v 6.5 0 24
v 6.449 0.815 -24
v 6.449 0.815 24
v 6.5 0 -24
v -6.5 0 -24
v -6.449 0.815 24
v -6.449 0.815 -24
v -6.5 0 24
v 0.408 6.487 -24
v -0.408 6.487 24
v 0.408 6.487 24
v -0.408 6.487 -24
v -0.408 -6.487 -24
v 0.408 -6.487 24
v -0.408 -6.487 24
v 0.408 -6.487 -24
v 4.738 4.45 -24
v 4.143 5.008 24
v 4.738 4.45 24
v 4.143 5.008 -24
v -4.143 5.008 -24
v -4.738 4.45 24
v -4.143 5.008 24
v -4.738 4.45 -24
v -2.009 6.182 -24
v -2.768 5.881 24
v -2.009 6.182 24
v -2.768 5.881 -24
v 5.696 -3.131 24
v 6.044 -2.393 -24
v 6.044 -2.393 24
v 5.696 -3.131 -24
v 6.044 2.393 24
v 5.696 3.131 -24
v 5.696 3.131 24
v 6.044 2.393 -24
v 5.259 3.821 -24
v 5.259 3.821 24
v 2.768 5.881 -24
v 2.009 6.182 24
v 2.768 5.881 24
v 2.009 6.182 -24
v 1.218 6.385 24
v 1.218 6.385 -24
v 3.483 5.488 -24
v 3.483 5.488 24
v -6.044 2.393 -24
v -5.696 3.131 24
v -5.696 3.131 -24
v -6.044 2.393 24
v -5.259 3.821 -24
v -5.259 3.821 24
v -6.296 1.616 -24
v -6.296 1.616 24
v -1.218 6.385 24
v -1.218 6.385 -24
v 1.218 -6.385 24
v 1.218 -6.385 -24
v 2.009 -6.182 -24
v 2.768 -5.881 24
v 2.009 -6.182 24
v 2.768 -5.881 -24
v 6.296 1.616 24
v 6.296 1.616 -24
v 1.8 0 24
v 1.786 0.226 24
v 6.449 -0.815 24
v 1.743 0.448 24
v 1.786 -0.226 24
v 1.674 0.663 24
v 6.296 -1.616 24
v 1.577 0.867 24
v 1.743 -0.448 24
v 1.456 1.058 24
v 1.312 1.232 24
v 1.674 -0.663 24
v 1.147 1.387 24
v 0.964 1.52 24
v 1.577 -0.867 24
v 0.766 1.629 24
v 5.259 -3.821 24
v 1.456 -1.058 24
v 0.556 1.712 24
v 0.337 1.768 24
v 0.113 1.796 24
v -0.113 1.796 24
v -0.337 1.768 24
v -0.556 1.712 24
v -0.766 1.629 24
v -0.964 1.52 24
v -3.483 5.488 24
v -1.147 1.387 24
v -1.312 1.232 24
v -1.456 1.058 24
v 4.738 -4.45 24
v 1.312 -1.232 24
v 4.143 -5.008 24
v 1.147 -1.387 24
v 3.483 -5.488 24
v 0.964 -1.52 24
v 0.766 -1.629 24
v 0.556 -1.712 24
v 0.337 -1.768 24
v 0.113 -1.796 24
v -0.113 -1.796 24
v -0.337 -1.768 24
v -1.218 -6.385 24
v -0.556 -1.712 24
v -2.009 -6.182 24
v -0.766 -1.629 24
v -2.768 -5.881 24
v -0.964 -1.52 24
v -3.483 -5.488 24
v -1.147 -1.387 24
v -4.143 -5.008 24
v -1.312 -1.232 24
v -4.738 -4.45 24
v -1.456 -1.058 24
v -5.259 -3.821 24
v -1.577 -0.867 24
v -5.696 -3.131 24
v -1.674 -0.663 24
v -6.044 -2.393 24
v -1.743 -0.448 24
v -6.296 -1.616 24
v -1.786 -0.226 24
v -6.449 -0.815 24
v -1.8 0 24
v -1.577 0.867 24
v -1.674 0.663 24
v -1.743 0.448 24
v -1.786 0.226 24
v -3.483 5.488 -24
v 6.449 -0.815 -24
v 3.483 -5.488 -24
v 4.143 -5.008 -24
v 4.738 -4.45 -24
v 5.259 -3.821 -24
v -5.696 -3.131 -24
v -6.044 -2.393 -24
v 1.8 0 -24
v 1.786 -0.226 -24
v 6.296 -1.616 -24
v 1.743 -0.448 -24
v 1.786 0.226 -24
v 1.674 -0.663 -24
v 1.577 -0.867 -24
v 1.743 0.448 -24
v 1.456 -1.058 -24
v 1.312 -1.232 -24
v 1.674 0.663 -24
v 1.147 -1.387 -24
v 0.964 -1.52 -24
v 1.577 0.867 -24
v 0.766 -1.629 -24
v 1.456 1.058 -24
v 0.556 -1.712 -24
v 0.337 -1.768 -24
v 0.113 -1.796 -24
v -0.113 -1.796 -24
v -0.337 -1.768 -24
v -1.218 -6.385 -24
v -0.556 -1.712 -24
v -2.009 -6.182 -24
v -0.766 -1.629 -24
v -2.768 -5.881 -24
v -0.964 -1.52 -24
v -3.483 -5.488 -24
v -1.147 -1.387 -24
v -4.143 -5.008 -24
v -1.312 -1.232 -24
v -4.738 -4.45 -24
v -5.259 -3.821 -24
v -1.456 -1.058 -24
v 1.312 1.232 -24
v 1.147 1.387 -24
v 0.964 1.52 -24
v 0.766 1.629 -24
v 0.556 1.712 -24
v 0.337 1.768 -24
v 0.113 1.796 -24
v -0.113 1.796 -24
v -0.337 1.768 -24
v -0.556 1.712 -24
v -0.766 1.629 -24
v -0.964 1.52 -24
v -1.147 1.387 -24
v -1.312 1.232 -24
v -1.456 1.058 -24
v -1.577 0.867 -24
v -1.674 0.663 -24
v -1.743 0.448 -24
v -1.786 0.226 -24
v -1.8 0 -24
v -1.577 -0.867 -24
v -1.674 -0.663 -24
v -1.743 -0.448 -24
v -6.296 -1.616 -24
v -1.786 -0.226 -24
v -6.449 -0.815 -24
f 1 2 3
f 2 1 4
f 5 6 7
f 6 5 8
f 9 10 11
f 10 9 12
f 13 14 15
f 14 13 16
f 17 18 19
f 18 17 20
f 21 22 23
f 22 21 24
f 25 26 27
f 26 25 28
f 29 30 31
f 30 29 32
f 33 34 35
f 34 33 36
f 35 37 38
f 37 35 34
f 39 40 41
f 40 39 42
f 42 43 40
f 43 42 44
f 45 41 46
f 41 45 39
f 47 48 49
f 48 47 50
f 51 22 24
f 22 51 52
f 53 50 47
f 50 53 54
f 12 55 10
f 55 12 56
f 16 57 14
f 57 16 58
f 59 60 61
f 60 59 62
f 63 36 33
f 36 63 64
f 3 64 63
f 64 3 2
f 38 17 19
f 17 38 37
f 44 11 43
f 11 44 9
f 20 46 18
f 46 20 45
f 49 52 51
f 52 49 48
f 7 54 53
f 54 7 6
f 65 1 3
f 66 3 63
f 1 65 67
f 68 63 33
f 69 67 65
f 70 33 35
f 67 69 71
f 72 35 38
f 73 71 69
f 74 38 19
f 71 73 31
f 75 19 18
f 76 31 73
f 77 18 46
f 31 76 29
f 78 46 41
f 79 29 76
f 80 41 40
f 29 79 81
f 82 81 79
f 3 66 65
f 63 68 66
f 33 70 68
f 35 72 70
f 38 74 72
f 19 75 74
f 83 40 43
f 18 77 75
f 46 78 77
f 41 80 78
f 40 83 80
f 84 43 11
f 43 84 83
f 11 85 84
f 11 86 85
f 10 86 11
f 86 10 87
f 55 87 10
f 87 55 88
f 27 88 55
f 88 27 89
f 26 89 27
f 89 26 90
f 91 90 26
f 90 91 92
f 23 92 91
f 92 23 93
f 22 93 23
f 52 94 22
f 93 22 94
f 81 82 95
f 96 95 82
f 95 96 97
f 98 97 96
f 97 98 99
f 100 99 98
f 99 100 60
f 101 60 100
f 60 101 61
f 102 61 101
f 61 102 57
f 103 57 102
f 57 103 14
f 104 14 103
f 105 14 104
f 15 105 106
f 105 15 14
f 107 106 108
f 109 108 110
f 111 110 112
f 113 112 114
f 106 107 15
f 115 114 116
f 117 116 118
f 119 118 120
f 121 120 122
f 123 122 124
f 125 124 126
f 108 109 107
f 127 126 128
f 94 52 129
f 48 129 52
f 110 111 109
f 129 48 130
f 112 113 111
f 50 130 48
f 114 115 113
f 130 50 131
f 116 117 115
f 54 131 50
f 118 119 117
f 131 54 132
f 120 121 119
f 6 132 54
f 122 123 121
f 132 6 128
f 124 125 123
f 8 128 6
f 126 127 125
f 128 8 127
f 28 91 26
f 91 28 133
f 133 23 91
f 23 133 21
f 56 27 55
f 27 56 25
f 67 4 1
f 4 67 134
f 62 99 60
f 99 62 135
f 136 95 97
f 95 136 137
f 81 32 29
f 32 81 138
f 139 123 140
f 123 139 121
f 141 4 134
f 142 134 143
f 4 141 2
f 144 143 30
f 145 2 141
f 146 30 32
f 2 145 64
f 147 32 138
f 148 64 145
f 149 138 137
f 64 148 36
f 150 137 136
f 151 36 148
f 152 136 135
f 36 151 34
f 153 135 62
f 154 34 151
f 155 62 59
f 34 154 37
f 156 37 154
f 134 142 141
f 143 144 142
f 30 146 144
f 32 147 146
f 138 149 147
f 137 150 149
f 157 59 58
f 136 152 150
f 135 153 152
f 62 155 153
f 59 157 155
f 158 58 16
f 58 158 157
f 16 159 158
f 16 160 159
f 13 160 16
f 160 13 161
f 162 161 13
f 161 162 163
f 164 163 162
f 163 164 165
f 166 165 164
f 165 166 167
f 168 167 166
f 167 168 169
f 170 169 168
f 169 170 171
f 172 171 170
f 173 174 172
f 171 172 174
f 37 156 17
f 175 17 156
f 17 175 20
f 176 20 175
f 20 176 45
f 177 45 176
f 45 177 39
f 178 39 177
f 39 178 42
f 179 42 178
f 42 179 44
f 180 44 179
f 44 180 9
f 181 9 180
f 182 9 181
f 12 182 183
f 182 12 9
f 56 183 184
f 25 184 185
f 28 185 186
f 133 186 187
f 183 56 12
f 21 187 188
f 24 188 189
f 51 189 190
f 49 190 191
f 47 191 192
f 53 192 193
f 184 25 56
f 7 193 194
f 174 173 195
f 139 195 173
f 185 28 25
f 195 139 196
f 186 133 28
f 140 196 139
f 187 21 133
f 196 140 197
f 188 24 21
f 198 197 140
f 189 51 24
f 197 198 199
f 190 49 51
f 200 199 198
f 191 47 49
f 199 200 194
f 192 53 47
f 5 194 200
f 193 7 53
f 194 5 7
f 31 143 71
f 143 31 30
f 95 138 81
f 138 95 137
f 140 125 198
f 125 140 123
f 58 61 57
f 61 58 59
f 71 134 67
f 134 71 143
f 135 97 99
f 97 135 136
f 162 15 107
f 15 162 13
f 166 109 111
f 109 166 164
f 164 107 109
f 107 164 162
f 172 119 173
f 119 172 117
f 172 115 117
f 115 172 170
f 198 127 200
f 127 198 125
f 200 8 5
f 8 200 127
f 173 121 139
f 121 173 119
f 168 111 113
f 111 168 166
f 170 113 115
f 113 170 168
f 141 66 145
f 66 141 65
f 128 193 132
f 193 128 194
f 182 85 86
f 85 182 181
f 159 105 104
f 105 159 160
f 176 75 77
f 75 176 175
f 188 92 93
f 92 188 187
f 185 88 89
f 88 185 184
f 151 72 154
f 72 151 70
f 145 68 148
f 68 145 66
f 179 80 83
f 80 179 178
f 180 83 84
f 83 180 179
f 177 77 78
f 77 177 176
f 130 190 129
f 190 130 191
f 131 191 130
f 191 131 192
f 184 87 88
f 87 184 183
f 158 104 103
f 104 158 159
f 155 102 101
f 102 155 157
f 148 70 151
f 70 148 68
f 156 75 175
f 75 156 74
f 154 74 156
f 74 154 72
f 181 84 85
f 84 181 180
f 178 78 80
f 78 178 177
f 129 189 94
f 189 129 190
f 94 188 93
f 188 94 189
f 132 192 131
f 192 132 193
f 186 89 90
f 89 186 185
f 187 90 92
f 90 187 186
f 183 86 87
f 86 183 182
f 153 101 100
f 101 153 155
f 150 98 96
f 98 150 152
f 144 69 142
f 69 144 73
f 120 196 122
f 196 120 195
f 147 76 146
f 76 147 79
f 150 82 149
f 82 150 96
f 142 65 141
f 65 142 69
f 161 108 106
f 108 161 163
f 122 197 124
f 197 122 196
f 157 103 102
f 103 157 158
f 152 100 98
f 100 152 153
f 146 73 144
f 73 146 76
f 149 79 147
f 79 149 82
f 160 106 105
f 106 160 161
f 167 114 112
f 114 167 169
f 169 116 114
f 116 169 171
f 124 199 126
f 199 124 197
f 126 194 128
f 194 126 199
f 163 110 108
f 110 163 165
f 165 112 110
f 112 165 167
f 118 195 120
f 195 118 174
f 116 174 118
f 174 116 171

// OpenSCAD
$fn = 50;


difference() {
	union() {
		translate(v = [0, 0, -24.0000000000]) {
			cylinder(h = 48, r = 6.5000000000);
		}
	}
	union() {
		translate(v = [0, 0, -100.0000000000]) {
			cylinder(h = 200, r = 1.8000000000);
		}
	}
}
